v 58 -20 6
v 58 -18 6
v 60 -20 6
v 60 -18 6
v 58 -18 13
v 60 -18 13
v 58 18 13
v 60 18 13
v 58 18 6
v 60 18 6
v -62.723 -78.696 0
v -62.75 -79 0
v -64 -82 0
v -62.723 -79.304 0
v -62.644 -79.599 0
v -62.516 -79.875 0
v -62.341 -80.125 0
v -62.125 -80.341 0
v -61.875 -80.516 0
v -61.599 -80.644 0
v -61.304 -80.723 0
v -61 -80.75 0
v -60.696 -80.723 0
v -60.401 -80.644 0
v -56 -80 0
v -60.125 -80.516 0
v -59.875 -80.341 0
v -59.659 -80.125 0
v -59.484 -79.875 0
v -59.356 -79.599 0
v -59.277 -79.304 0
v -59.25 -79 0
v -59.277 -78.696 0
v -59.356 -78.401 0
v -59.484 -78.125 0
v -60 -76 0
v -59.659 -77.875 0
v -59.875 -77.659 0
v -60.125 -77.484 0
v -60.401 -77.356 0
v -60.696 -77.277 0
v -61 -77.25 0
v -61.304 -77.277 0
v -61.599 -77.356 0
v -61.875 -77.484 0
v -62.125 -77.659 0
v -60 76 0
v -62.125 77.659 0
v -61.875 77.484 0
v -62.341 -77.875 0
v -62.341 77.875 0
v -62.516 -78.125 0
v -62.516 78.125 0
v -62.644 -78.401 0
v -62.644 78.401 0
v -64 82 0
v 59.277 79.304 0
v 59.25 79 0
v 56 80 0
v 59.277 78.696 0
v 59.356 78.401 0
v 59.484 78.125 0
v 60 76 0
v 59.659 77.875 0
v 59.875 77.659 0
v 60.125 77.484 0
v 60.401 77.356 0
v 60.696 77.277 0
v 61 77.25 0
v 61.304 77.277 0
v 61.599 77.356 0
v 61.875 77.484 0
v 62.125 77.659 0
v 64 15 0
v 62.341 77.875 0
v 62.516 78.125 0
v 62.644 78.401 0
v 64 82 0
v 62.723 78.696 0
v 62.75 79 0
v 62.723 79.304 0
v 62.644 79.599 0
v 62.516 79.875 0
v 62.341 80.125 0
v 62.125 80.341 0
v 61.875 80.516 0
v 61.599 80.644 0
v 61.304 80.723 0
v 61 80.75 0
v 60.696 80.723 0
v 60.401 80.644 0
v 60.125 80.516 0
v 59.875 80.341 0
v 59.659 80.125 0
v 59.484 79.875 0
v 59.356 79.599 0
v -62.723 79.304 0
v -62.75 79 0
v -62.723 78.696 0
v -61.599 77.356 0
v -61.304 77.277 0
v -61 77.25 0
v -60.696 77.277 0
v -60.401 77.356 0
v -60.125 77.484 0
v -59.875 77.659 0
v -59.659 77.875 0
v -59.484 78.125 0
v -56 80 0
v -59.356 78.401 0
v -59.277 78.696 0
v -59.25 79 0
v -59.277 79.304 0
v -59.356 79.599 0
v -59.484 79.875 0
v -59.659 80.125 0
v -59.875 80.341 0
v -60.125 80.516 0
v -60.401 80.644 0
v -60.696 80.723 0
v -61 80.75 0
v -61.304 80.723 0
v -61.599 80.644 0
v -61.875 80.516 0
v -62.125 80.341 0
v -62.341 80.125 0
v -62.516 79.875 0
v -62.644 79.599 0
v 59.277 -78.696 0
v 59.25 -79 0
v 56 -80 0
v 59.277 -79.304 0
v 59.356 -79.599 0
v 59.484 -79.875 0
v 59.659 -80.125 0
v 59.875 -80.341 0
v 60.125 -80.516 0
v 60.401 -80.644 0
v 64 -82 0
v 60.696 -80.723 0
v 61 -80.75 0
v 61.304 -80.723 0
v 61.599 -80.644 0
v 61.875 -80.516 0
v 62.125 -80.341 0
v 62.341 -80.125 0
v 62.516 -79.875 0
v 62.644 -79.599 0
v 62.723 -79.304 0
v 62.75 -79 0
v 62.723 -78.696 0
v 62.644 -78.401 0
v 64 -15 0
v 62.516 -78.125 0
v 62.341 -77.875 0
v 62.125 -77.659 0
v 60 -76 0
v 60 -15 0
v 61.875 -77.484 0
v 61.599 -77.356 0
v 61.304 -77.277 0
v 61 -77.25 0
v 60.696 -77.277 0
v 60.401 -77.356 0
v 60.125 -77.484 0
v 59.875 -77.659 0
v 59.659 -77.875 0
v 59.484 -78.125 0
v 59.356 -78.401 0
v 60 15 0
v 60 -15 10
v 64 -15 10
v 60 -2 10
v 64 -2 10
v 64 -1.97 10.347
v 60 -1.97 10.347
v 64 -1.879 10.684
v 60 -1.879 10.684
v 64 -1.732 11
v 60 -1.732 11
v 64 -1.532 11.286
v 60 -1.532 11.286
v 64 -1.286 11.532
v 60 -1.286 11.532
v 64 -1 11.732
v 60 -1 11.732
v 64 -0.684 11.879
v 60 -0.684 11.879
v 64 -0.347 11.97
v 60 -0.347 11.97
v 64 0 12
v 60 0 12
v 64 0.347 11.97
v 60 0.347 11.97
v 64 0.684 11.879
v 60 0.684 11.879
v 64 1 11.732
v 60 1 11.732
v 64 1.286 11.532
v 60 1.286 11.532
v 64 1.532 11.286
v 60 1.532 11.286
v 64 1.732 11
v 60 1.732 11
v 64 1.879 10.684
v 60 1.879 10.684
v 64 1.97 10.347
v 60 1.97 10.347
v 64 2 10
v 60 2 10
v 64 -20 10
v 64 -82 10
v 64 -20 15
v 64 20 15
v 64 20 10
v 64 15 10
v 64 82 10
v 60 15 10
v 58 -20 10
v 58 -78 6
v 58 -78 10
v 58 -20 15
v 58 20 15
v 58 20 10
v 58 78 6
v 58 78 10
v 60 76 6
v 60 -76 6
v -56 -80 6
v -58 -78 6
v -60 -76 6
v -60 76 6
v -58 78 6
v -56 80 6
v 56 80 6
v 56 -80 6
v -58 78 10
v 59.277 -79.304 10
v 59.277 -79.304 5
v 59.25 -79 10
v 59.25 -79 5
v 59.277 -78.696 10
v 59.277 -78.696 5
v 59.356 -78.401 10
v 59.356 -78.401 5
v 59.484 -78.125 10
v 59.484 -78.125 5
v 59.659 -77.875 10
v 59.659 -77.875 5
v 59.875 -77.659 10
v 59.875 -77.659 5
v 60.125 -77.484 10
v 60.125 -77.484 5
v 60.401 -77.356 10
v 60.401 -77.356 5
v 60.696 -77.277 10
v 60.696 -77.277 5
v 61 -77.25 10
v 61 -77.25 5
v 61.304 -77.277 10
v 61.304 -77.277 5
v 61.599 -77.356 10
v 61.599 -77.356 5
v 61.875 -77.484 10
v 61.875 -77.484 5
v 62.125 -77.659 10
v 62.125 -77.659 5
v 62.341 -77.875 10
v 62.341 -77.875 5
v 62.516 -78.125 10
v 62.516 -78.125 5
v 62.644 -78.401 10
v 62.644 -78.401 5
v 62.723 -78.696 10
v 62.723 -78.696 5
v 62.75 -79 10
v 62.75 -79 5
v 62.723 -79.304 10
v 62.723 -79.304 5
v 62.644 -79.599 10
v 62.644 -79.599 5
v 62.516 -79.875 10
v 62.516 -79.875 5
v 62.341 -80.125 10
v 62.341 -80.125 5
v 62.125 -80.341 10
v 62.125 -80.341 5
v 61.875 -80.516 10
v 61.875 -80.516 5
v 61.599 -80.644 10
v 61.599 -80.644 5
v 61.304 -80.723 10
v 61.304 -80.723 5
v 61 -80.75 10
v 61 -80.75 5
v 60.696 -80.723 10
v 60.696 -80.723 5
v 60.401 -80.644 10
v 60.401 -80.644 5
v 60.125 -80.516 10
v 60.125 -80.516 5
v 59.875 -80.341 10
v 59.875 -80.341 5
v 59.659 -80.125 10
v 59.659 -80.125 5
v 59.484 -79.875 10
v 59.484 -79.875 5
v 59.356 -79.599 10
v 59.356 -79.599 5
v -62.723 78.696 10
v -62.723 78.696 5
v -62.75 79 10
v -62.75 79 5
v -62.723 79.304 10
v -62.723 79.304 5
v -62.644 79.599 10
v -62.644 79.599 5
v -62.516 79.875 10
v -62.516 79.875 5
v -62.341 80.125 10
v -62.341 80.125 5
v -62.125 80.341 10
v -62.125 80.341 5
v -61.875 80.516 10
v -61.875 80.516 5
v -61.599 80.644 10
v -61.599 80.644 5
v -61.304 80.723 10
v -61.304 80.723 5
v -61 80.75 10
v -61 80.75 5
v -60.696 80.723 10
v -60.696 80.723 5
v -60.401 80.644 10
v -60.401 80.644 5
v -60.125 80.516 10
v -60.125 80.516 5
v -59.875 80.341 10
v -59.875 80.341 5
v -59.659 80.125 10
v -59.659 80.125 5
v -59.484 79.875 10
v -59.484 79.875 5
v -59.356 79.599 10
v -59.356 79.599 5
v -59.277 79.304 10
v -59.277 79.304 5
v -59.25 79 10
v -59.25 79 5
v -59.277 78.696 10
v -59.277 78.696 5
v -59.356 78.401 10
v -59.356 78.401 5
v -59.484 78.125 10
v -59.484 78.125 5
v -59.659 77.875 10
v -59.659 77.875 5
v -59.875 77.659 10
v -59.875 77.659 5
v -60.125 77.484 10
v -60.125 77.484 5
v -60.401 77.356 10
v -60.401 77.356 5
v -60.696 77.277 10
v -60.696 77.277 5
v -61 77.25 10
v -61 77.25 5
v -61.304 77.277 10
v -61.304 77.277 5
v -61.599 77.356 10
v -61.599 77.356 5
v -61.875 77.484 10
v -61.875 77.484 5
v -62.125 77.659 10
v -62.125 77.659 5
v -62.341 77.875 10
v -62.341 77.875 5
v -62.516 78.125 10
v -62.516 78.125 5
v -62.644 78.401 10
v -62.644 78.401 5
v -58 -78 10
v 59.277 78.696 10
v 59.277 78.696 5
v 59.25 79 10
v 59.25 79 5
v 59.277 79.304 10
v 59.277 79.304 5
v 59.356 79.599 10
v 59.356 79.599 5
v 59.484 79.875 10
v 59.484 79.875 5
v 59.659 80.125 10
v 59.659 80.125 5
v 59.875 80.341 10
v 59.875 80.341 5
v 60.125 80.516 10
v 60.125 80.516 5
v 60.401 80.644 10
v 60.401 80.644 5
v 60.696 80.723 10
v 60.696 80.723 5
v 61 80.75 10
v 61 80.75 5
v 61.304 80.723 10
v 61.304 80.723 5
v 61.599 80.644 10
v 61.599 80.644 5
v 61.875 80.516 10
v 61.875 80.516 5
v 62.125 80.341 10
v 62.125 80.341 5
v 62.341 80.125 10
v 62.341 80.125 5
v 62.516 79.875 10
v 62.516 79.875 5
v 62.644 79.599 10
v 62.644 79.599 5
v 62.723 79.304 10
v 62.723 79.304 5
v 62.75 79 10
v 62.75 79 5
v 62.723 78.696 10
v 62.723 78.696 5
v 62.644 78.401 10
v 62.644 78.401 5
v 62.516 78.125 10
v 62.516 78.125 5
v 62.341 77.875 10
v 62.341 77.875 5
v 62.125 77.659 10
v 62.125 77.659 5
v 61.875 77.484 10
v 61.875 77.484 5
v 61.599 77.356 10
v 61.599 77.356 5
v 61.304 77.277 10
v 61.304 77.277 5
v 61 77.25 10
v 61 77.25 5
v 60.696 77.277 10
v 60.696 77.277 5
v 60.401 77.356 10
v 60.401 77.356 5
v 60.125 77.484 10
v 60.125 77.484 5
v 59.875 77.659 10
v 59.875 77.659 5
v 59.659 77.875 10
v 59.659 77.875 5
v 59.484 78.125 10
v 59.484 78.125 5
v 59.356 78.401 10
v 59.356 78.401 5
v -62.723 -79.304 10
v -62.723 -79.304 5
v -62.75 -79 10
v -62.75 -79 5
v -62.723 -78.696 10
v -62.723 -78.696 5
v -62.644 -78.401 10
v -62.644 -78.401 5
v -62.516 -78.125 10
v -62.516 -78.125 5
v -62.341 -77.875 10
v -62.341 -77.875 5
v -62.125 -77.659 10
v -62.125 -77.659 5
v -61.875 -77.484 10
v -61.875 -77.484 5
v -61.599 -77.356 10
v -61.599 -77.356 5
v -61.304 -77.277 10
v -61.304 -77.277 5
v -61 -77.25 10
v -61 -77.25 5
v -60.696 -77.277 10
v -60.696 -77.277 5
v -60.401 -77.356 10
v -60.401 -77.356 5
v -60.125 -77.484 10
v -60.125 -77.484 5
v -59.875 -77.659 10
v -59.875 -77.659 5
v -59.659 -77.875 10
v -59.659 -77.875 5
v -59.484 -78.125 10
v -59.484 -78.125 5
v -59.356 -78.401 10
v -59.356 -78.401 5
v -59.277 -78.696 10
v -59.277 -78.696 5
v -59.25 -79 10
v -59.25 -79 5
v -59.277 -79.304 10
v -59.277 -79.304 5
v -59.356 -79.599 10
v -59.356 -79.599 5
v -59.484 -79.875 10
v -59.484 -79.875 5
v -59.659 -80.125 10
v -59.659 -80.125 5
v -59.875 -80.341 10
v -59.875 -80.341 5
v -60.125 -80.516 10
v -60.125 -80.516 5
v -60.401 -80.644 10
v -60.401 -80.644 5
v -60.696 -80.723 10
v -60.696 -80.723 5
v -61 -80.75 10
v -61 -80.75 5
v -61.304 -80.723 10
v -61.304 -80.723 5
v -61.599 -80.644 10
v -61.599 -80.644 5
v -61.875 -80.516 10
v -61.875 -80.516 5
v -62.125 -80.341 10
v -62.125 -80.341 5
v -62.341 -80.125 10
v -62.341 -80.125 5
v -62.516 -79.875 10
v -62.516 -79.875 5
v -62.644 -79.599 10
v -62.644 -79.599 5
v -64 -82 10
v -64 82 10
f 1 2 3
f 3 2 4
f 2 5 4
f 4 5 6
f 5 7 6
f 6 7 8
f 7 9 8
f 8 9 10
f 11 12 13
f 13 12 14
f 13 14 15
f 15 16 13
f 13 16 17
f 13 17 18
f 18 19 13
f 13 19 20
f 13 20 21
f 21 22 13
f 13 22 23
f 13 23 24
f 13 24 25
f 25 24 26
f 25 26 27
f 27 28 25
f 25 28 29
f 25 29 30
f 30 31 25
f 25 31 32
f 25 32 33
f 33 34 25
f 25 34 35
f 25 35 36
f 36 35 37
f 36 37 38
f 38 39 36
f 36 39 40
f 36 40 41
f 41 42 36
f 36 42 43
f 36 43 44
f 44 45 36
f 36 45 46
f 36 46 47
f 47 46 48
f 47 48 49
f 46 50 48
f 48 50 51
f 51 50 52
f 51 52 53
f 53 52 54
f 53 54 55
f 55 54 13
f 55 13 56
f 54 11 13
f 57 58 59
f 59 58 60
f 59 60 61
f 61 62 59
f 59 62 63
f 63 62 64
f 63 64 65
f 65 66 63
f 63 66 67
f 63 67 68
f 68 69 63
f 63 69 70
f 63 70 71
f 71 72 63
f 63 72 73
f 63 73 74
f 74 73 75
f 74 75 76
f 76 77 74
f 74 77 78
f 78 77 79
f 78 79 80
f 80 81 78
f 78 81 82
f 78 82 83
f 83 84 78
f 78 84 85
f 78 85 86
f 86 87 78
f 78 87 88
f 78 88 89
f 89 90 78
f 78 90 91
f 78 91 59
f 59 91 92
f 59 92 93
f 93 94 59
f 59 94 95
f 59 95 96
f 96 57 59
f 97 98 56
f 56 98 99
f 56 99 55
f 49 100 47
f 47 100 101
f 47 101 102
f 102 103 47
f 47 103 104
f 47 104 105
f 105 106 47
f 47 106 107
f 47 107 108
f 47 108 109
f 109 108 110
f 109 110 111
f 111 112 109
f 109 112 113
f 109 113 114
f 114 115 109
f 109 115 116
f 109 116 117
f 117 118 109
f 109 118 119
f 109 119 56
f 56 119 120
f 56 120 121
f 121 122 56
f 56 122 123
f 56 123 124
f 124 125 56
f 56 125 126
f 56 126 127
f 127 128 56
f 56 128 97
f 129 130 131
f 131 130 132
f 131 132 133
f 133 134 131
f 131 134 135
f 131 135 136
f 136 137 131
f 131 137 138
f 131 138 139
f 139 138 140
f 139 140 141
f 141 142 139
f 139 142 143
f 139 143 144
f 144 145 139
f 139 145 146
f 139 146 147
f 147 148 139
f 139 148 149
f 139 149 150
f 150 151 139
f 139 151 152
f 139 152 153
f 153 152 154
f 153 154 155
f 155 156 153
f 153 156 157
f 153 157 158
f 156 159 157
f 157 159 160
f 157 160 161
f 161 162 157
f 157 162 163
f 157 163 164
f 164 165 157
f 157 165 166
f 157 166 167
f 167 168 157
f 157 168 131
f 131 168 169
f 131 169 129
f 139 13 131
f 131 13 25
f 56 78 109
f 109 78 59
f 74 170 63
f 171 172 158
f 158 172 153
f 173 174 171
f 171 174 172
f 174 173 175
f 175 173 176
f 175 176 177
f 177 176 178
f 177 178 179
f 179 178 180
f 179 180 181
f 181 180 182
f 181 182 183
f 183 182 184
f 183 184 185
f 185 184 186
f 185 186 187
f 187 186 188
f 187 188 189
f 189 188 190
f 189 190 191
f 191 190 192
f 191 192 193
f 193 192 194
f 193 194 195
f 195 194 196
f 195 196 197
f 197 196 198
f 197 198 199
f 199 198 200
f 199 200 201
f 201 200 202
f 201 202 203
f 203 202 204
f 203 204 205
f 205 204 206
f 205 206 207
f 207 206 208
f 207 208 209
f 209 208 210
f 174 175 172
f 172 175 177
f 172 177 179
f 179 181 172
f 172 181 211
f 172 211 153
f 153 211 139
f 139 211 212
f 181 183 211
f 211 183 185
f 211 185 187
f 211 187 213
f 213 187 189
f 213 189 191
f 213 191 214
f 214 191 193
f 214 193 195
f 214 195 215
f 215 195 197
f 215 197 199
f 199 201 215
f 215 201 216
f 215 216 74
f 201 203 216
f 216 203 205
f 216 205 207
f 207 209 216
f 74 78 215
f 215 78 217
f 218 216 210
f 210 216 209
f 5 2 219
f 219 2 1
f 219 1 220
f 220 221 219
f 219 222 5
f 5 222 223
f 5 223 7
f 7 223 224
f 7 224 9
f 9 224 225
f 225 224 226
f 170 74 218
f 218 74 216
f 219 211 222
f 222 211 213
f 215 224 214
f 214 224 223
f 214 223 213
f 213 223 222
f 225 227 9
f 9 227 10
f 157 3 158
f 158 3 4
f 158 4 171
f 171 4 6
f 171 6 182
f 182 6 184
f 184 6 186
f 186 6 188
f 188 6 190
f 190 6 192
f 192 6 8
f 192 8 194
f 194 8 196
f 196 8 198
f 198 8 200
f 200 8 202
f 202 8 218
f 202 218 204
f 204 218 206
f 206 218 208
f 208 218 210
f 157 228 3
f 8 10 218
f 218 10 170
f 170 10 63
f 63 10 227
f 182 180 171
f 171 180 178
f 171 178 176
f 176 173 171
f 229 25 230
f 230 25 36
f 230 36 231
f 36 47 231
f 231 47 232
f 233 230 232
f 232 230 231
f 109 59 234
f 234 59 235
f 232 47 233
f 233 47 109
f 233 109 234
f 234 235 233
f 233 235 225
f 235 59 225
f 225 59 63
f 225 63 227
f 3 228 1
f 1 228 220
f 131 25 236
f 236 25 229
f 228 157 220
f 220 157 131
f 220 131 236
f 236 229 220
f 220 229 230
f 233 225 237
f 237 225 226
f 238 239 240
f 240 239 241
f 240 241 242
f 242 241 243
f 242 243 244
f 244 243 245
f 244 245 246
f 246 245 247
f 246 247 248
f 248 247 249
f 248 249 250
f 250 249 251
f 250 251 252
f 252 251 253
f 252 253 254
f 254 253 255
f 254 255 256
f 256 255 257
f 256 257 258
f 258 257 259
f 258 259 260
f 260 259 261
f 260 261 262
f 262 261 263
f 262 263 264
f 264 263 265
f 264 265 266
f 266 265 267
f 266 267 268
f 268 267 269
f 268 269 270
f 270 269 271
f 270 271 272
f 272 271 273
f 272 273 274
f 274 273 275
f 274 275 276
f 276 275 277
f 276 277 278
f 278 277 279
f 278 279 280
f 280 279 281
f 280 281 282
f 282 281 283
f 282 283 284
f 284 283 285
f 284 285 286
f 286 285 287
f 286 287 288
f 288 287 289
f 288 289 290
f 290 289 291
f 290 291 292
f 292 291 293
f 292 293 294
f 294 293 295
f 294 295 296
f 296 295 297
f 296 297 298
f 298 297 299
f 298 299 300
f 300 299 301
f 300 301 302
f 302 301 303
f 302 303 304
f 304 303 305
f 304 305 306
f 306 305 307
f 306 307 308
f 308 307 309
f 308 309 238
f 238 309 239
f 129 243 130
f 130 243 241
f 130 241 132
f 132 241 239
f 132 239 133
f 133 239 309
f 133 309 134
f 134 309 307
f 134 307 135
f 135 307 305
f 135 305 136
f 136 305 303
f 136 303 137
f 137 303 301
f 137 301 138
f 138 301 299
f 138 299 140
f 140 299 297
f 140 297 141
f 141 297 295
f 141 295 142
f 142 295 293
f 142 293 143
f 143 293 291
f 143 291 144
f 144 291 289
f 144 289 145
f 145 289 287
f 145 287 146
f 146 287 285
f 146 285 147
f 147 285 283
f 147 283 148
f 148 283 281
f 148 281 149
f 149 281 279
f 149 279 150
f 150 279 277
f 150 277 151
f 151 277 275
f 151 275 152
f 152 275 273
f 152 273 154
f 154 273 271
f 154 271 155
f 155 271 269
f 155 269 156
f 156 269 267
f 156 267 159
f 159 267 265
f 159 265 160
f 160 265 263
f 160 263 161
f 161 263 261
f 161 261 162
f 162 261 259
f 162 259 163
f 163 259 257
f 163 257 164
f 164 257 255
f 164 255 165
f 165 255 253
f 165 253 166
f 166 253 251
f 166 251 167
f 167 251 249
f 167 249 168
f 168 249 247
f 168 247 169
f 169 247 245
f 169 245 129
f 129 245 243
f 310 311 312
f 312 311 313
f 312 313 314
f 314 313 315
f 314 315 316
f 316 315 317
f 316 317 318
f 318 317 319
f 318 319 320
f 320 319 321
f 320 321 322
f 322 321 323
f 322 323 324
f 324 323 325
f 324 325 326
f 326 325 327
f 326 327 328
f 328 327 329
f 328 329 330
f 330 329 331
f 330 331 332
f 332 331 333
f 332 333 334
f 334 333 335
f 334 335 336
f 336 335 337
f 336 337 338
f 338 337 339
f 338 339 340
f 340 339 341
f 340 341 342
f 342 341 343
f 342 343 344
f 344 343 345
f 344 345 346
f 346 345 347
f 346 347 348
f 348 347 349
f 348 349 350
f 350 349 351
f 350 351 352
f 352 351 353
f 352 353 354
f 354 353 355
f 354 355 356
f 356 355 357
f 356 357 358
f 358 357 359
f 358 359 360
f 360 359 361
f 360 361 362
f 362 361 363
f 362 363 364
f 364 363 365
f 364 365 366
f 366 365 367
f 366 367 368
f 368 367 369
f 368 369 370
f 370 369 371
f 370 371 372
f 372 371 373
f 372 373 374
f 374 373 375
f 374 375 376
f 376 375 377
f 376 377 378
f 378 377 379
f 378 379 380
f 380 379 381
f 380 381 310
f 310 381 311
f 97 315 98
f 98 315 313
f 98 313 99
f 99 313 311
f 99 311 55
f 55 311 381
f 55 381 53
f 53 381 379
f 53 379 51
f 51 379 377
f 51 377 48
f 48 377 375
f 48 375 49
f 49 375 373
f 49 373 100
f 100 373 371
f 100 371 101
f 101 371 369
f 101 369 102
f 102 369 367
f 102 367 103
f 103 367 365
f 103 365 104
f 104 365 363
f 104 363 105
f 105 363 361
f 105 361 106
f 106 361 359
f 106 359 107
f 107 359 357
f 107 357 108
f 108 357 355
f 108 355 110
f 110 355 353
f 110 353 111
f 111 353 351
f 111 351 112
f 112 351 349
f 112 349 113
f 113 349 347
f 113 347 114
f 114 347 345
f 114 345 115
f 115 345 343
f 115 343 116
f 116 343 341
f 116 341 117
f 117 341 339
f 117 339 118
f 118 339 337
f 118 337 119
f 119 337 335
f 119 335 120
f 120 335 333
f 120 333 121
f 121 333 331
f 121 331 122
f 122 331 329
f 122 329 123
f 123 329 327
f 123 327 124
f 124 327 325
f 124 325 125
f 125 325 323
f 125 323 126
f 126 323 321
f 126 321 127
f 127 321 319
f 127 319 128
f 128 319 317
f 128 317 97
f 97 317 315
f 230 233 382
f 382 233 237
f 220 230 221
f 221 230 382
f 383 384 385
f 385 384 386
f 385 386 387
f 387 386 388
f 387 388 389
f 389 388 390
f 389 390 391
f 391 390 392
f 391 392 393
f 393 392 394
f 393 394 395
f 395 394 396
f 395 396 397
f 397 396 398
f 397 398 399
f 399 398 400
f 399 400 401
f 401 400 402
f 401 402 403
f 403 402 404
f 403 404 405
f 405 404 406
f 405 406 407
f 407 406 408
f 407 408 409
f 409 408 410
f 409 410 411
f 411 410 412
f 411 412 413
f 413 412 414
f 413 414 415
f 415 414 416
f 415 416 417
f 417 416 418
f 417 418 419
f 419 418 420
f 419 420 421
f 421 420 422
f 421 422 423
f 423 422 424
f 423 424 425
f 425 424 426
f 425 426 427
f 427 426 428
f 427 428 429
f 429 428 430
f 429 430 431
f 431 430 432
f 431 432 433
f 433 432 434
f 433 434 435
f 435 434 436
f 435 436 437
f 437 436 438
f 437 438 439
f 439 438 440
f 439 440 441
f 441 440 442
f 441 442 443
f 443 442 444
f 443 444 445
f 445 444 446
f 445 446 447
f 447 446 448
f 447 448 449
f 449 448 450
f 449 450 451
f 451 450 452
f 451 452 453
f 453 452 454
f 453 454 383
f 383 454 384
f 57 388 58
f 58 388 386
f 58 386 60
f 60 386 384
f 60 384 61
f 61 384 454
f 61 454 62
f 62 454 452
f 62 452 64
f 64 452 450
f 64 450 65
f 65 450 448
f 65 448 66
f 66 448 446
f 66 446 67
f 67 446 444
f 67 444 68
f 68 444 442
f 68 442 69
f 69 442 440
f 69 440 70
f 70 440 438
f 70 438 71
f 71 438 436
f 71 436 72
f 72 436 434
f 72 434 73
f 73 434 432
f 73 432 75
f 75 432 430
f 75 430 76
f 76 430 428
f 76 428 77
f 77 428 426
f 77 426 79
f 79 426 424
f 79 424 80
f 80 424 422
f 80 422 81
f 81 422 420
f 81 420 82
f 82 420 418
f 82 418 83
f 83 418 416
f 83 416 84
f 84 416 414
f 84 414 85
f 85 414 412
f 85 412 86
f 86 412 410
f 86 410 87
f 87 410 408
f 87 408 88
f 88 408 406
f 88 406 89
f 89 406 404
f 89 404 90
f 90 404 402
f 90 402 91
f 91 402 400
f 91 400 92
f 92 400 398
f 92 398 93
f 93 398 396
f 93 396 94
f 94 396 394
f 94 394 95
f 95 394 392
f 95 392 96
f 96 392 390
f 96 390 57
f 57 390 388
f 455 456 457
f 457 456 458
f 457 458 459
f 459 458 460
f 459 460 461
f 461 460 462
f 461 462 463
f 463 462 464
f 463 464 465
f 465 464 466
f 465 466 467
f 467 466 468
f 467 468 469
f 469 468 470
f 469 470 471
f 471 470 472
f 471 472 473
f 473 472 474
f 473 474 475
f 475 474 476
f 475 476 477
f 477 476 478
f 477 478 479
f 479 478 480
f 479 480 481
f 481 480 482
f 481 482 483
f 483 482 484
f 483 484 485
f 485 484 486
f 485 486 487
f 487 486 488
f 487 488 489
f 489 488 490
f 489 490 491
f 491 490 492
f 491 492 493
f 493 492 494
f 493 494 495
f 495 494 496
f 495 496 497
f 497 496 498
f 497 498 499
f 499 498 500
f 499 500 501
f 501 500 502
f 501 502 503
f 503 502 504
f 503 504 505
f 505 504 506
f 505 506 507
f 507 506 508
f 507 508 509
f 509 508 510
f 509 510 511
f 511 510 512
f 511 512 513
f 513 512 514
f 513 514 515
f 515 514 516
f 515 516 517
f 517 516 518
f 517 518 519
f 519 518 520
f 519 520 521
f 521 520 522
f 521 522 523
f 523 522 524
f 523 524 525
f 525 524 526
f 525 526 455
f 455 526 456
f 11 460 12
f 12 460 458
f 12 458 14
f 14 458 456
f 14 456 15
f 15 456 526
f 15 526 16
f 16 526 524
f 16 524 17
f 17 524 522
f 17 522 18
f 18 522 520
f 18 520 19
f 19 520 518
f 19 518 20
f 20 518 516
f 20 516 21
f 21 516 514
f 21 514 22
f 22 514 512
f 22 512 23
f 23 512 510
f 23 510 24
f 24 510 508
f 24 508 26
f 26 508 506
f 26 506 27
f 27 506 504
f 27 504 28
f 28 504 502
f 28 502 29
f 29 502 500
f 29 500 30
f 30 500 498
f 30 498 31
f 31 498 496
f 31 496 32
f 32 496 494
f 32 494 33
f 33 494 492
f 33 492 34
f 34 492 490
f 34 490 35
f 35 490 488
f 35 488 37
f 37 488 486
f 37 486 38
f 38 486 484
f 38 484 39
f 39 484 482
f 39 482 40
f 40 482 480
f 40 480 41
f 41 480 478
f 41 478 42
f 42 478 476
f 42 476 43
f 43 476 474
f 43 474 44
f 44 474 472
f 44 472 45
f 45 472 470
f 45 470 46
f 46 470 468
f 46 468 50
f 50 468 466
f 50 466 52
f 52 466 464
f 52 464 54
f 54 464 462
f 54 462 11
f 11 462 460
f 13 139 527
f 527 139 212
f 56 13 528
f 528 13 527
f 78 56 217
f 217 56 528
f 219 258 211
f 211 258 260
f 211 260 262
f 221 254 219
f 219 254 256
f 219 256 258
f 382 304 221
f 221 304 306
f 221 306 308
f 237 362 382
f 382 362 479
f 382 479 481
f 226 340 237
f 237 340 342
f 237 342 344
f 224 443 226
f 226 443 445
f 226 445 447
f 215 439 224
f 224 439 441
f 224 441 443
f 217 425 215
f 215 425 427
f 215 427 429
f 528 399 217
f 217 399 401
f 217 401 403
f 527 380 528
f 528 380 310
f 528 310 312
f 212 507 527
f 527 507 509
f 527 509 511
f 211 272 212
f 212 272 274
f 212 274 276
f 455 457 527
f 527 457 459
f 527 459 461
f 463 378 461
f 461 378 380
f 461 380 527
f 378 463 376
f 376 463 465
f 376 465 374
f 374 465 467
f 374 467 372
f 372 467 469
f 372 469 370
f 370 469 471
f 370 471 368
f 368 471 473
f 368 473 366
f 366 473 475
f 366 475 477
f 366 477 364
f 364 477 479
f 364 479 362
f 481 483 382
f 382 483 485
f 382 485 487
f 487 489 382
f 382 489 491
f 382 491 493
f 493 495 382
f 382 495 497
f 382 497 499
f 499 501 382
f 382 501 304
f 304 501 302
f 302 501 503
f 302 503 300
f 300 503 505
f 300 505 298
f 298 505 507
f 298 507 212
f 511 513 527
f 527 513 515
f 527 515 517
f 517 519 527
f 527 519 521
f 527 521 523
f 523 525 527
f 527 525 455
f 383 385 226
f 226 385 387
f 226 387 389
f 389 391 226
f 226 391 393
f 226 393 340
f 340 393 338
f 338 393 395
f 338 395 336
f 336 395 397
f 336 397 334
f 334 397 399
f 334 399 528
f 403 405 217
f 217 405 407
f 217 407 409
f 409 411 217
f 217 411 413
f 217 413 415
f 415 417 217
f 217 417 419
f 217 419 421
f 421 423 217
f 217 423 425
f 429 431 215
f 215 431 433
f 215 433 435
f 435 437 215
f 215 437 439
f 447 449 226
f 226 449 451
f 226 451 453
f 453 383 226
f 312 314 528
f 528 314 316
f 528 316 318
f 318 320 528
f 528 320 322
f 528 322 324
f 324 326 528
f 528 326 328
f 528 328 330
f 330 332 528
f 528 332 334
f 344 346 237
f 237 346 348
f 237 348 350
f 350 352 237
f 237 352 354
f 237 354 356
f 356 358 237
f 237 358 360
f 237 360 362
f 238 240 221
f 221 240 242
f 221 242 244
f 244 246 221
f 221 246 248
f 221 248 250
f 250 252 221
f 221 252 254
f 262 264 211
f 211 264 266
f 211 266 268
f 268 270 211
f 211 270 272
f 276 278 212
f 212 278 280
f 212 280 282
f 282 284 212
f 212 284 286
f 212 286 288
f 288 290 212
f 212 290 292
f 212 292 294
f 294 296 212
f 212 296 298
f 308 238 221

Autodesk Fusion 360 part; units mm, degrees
sketch "Sketch1" plane through (0, 0, 0) normal (0, 0, 1) x (1, 0, 0)
  line L0 (58, 78) -> (-58, 78)
  line L1 (-58, 78) -> (-58, -78)
  line L2 (-58, -78) -> (58, -78)
  line L3 (58, -78) -> (58, 78)
  line L4 (58, 78) -> (-58, -78) construction
  line L5 (-58, 78) -> (58, -78) construction
  circle A0 centre (-61, 79) radius 1.75
  line L6 (0, 2.5) -> (0, 20)
  circle A1 centre (61, 79) radius 1.75
  line L7 (20, 0) -> (2.5, 0)
  circle A2 centre (61, -79) radius 1.75
  circle A3 centre (-61, -79) radius 1.75
  line L8 (64, 82) -> (-64, 82)
  line L9 (-64, 82) -> (-64, -82)
  line L10 (-64, -82) -> (64, -82)
  line L11 (64, -82) -> (64, 82)
  line L12 (64, 82) -> (-64, -82) construction
  line L13 (-64, 82) -> (64, -82) construction
  dimension "d1" = 116
  dimension "d2" = 156
  dimension "d3" = 3.5
  dimension "d4" = 3
  dimension "d5" = 1
  dimension "d6" = 3
  dimension "d7" = 3
extrude "Extrude1" add sketch "Sketch1" along normal blind 10
sketch "Sketch2" plane through (0, 0, 0) normal (0, 0, 1) x (-1, 0, 0)
  line L0 (-58, -78) -> (-58, 78)
  line L1 (-58, 78) -> (58, 78)
  line L2 (58, 78) -> (58, -78)
  line L3 (58, -78) -> (-58, -78)
  circle A0 centre (-61, 79) radius 1.5
  circle A1 centre (-61, -79) radius 1.5
  circle A2 centre (61, 79) radius 1.5
  circle A3 centre (61, -79) radius 1.5
  line L4 (-64, 82) -> (-64, -82)
  line L5 (-64, -82) -> (64, -82)
  line L6 (64, -82) -> (64, 82)
  line L7 (64, 82) -> (-64, 82)
  line L8 (-60, 80) -> (60, 80)
  line L9 (60, 80) -> (60, -80)
  line L10 (60, -80) -> (-60, -80)
  line L11 (-60, -80) -> (-60, 80)
  line L12 (56, -80) -> (60, -76)
  line L13 (0, -2.5) -> (0, -20)
  line L14 (-56, -80) -> (-60, -76)
  line L15 (-20, 0) -> (-2.5, 0)
  line L16 (-56, 80) -> (-60, 76)
  line L17 (56, 80) -> (60, 76)
  line L18 (-58, 78) -> (-58, -78)
  line L19 (-58, -78) -> (58, -78)
  line L20 (58, -78) -> (58, 78)
  line L21 (58, 78) -> (-58, 78)
  circle A4 centre (-61, 79) radius 1.75
  circle A5 centre (-61, -79) radius 1.75
  circle A6 centre (61, 79) radius 1.75
  circle A7 centre (61, -79) radius 1.75
  line L22 (-64, -82) -> (-64, 82)
  line L23 (-64, 82) -> (64, 82)
  line L24 (64, 82) -> (64, -82)
  line L25 (64, -82) -> (-64, -82)
  dimension "d10" = -2
  dimension "d11" = 45
extrude "Extrude2" cut sketch "Sketch2" along normal blind 6 contours L0 L11 L14 L16 L18 | L3 L10 L12 L14 L19 | L1 L8 L16 L17 L21 | L2 L9 L12 L17 L20
sketch "Sketch3" plane through (0, 0, 0) normal (0, 0, 1) x (1, 0, 0)
  line L0 (58, 15) -> (64, 15)
  line L1 (64, 15) -> (64, -15)
  line L2 (64, -15) -> (58, -15)
  line L3 (58, -15) -> (58, 15)
  line L4 (64, -82) -> (64, 82)
  line L5 (58, -78) -> (58, 78)
  line L6 (58, 15) -> (64, 15)
  line L7 (64, 15) -> (64, 20)
  line L8 (64, 20) -> (58, 20)
  line L9 (58, 20) -> (58, 15)
  line L10 (58, -15) -> (64, -15)
  line L11 (64, -15) -> (64, -20)
  line L12 (64, -20) -> (58, -20)
  line L13 (58, -20) -> (58, -15)
  point P0 (58, 0)
  dimension "d14" = 30
  dimension "d15" = 5
  dimension "d16" = 5
extrude "Extrude3" add sketch "Sketch3" along normal blind 15
extrude "Extrude4" cut sketch "Sketch3" along normal blind 10 contours L0 L1 L2 L3 L4 L5 L6 L10
sketch "Sketch4" plane through (58, 0, 0) normal (-1, 0, 0) x (0, -1, 0)
  line L0 (-15, 0) -> (-15, 10)
  line L1 (-15, 10) -> (15, 10)
  line L2 (15, 10) -> (15, 0)
  line L3 (15, 0) -> (20, 0)
  line L4 (78, 6) -> (78, 10)
  line L5 (20, 6) -> (78, 6)
  line L6 (20, 0) -> (20, 6)
  line L7 (20, 15) -> (-20, 15)
  line L8 (-20, 15) -> (-20, 10)
  line L9 (-78, 10) -> (-78, 6)
  circle A0 centre (0, 10) radius 2
  line L10 (78, 10) -> (20, 10)
  line L11 (20, 10) -> (20, 15)
  line L12 (-20, 10) -> (-78, 10)
  line L13 (-78, 6) -> (-20, 6)
  line L14 (-20, 6) -> (-20, 0)
  line L15 (-20, 0) -> (-15, 0)
extrude "Extrude5" cut sketch "Sketch4" against normal blind 6 contours L1 A0 picked at (0.4887, 10.4534)
sketch "Sketch6" plane through (58, 0, 0) normal (-1, 0, 0) x (0, -1, 0)
  arc A0 (2, 10) -> (-2, 10) centre (0, 10) ccw
  line L0 (2, 10) -> (15, 10)
  line L1 (15, 10) -> (15, 0)
  line L2 (15, 0) -> (20, 0)
  line L3 (20, 0) -> (20, 6)
  line L4 (20, 6) -> (78, 6)
  line L5 (78, 6) -> (78, 10)
  line L6 (78, 10) -> (20, 10)
  line L7 (20, 10) -> (20, 15)
  line L8 (20, 15) -> (-20, 15)
  line L9 (-20, 15) -> (-20, 10)
  line L10 (-20, 10) -> (-78, 10)
  line L11 (-78, 10) -> (-78, 6)
  line L12 (-78, 6) -> (-20, 6)
  line L13 (-20, 6) -> (-20, 0)
  line L14 (-20, 0) -> (-15, 0)
  line L15 (-15, 0) -> (-15, 10)
  line L16 (-15, 10) -> (-2, 10)
  line L17 (-20, 6) -> (-18, 6)
  line L18 (-18, 6) -> (-18, 13)
  line L19 (-18, 13) -> (18, 13)
  line L20 (18, 13) -> (18, 6)
  line L21 (18, 6) -> (20, 6)
  dimension "d26" = 3
  dimension "d27" = 3
  dimension "d28" = 3
extrude "Extrude7" cut sketch "Sketch6" against normal blind 2 contours A0 L0 L1 L2 L3 L13 L14 L15 L16 L17 L18 L19 L20 L21
